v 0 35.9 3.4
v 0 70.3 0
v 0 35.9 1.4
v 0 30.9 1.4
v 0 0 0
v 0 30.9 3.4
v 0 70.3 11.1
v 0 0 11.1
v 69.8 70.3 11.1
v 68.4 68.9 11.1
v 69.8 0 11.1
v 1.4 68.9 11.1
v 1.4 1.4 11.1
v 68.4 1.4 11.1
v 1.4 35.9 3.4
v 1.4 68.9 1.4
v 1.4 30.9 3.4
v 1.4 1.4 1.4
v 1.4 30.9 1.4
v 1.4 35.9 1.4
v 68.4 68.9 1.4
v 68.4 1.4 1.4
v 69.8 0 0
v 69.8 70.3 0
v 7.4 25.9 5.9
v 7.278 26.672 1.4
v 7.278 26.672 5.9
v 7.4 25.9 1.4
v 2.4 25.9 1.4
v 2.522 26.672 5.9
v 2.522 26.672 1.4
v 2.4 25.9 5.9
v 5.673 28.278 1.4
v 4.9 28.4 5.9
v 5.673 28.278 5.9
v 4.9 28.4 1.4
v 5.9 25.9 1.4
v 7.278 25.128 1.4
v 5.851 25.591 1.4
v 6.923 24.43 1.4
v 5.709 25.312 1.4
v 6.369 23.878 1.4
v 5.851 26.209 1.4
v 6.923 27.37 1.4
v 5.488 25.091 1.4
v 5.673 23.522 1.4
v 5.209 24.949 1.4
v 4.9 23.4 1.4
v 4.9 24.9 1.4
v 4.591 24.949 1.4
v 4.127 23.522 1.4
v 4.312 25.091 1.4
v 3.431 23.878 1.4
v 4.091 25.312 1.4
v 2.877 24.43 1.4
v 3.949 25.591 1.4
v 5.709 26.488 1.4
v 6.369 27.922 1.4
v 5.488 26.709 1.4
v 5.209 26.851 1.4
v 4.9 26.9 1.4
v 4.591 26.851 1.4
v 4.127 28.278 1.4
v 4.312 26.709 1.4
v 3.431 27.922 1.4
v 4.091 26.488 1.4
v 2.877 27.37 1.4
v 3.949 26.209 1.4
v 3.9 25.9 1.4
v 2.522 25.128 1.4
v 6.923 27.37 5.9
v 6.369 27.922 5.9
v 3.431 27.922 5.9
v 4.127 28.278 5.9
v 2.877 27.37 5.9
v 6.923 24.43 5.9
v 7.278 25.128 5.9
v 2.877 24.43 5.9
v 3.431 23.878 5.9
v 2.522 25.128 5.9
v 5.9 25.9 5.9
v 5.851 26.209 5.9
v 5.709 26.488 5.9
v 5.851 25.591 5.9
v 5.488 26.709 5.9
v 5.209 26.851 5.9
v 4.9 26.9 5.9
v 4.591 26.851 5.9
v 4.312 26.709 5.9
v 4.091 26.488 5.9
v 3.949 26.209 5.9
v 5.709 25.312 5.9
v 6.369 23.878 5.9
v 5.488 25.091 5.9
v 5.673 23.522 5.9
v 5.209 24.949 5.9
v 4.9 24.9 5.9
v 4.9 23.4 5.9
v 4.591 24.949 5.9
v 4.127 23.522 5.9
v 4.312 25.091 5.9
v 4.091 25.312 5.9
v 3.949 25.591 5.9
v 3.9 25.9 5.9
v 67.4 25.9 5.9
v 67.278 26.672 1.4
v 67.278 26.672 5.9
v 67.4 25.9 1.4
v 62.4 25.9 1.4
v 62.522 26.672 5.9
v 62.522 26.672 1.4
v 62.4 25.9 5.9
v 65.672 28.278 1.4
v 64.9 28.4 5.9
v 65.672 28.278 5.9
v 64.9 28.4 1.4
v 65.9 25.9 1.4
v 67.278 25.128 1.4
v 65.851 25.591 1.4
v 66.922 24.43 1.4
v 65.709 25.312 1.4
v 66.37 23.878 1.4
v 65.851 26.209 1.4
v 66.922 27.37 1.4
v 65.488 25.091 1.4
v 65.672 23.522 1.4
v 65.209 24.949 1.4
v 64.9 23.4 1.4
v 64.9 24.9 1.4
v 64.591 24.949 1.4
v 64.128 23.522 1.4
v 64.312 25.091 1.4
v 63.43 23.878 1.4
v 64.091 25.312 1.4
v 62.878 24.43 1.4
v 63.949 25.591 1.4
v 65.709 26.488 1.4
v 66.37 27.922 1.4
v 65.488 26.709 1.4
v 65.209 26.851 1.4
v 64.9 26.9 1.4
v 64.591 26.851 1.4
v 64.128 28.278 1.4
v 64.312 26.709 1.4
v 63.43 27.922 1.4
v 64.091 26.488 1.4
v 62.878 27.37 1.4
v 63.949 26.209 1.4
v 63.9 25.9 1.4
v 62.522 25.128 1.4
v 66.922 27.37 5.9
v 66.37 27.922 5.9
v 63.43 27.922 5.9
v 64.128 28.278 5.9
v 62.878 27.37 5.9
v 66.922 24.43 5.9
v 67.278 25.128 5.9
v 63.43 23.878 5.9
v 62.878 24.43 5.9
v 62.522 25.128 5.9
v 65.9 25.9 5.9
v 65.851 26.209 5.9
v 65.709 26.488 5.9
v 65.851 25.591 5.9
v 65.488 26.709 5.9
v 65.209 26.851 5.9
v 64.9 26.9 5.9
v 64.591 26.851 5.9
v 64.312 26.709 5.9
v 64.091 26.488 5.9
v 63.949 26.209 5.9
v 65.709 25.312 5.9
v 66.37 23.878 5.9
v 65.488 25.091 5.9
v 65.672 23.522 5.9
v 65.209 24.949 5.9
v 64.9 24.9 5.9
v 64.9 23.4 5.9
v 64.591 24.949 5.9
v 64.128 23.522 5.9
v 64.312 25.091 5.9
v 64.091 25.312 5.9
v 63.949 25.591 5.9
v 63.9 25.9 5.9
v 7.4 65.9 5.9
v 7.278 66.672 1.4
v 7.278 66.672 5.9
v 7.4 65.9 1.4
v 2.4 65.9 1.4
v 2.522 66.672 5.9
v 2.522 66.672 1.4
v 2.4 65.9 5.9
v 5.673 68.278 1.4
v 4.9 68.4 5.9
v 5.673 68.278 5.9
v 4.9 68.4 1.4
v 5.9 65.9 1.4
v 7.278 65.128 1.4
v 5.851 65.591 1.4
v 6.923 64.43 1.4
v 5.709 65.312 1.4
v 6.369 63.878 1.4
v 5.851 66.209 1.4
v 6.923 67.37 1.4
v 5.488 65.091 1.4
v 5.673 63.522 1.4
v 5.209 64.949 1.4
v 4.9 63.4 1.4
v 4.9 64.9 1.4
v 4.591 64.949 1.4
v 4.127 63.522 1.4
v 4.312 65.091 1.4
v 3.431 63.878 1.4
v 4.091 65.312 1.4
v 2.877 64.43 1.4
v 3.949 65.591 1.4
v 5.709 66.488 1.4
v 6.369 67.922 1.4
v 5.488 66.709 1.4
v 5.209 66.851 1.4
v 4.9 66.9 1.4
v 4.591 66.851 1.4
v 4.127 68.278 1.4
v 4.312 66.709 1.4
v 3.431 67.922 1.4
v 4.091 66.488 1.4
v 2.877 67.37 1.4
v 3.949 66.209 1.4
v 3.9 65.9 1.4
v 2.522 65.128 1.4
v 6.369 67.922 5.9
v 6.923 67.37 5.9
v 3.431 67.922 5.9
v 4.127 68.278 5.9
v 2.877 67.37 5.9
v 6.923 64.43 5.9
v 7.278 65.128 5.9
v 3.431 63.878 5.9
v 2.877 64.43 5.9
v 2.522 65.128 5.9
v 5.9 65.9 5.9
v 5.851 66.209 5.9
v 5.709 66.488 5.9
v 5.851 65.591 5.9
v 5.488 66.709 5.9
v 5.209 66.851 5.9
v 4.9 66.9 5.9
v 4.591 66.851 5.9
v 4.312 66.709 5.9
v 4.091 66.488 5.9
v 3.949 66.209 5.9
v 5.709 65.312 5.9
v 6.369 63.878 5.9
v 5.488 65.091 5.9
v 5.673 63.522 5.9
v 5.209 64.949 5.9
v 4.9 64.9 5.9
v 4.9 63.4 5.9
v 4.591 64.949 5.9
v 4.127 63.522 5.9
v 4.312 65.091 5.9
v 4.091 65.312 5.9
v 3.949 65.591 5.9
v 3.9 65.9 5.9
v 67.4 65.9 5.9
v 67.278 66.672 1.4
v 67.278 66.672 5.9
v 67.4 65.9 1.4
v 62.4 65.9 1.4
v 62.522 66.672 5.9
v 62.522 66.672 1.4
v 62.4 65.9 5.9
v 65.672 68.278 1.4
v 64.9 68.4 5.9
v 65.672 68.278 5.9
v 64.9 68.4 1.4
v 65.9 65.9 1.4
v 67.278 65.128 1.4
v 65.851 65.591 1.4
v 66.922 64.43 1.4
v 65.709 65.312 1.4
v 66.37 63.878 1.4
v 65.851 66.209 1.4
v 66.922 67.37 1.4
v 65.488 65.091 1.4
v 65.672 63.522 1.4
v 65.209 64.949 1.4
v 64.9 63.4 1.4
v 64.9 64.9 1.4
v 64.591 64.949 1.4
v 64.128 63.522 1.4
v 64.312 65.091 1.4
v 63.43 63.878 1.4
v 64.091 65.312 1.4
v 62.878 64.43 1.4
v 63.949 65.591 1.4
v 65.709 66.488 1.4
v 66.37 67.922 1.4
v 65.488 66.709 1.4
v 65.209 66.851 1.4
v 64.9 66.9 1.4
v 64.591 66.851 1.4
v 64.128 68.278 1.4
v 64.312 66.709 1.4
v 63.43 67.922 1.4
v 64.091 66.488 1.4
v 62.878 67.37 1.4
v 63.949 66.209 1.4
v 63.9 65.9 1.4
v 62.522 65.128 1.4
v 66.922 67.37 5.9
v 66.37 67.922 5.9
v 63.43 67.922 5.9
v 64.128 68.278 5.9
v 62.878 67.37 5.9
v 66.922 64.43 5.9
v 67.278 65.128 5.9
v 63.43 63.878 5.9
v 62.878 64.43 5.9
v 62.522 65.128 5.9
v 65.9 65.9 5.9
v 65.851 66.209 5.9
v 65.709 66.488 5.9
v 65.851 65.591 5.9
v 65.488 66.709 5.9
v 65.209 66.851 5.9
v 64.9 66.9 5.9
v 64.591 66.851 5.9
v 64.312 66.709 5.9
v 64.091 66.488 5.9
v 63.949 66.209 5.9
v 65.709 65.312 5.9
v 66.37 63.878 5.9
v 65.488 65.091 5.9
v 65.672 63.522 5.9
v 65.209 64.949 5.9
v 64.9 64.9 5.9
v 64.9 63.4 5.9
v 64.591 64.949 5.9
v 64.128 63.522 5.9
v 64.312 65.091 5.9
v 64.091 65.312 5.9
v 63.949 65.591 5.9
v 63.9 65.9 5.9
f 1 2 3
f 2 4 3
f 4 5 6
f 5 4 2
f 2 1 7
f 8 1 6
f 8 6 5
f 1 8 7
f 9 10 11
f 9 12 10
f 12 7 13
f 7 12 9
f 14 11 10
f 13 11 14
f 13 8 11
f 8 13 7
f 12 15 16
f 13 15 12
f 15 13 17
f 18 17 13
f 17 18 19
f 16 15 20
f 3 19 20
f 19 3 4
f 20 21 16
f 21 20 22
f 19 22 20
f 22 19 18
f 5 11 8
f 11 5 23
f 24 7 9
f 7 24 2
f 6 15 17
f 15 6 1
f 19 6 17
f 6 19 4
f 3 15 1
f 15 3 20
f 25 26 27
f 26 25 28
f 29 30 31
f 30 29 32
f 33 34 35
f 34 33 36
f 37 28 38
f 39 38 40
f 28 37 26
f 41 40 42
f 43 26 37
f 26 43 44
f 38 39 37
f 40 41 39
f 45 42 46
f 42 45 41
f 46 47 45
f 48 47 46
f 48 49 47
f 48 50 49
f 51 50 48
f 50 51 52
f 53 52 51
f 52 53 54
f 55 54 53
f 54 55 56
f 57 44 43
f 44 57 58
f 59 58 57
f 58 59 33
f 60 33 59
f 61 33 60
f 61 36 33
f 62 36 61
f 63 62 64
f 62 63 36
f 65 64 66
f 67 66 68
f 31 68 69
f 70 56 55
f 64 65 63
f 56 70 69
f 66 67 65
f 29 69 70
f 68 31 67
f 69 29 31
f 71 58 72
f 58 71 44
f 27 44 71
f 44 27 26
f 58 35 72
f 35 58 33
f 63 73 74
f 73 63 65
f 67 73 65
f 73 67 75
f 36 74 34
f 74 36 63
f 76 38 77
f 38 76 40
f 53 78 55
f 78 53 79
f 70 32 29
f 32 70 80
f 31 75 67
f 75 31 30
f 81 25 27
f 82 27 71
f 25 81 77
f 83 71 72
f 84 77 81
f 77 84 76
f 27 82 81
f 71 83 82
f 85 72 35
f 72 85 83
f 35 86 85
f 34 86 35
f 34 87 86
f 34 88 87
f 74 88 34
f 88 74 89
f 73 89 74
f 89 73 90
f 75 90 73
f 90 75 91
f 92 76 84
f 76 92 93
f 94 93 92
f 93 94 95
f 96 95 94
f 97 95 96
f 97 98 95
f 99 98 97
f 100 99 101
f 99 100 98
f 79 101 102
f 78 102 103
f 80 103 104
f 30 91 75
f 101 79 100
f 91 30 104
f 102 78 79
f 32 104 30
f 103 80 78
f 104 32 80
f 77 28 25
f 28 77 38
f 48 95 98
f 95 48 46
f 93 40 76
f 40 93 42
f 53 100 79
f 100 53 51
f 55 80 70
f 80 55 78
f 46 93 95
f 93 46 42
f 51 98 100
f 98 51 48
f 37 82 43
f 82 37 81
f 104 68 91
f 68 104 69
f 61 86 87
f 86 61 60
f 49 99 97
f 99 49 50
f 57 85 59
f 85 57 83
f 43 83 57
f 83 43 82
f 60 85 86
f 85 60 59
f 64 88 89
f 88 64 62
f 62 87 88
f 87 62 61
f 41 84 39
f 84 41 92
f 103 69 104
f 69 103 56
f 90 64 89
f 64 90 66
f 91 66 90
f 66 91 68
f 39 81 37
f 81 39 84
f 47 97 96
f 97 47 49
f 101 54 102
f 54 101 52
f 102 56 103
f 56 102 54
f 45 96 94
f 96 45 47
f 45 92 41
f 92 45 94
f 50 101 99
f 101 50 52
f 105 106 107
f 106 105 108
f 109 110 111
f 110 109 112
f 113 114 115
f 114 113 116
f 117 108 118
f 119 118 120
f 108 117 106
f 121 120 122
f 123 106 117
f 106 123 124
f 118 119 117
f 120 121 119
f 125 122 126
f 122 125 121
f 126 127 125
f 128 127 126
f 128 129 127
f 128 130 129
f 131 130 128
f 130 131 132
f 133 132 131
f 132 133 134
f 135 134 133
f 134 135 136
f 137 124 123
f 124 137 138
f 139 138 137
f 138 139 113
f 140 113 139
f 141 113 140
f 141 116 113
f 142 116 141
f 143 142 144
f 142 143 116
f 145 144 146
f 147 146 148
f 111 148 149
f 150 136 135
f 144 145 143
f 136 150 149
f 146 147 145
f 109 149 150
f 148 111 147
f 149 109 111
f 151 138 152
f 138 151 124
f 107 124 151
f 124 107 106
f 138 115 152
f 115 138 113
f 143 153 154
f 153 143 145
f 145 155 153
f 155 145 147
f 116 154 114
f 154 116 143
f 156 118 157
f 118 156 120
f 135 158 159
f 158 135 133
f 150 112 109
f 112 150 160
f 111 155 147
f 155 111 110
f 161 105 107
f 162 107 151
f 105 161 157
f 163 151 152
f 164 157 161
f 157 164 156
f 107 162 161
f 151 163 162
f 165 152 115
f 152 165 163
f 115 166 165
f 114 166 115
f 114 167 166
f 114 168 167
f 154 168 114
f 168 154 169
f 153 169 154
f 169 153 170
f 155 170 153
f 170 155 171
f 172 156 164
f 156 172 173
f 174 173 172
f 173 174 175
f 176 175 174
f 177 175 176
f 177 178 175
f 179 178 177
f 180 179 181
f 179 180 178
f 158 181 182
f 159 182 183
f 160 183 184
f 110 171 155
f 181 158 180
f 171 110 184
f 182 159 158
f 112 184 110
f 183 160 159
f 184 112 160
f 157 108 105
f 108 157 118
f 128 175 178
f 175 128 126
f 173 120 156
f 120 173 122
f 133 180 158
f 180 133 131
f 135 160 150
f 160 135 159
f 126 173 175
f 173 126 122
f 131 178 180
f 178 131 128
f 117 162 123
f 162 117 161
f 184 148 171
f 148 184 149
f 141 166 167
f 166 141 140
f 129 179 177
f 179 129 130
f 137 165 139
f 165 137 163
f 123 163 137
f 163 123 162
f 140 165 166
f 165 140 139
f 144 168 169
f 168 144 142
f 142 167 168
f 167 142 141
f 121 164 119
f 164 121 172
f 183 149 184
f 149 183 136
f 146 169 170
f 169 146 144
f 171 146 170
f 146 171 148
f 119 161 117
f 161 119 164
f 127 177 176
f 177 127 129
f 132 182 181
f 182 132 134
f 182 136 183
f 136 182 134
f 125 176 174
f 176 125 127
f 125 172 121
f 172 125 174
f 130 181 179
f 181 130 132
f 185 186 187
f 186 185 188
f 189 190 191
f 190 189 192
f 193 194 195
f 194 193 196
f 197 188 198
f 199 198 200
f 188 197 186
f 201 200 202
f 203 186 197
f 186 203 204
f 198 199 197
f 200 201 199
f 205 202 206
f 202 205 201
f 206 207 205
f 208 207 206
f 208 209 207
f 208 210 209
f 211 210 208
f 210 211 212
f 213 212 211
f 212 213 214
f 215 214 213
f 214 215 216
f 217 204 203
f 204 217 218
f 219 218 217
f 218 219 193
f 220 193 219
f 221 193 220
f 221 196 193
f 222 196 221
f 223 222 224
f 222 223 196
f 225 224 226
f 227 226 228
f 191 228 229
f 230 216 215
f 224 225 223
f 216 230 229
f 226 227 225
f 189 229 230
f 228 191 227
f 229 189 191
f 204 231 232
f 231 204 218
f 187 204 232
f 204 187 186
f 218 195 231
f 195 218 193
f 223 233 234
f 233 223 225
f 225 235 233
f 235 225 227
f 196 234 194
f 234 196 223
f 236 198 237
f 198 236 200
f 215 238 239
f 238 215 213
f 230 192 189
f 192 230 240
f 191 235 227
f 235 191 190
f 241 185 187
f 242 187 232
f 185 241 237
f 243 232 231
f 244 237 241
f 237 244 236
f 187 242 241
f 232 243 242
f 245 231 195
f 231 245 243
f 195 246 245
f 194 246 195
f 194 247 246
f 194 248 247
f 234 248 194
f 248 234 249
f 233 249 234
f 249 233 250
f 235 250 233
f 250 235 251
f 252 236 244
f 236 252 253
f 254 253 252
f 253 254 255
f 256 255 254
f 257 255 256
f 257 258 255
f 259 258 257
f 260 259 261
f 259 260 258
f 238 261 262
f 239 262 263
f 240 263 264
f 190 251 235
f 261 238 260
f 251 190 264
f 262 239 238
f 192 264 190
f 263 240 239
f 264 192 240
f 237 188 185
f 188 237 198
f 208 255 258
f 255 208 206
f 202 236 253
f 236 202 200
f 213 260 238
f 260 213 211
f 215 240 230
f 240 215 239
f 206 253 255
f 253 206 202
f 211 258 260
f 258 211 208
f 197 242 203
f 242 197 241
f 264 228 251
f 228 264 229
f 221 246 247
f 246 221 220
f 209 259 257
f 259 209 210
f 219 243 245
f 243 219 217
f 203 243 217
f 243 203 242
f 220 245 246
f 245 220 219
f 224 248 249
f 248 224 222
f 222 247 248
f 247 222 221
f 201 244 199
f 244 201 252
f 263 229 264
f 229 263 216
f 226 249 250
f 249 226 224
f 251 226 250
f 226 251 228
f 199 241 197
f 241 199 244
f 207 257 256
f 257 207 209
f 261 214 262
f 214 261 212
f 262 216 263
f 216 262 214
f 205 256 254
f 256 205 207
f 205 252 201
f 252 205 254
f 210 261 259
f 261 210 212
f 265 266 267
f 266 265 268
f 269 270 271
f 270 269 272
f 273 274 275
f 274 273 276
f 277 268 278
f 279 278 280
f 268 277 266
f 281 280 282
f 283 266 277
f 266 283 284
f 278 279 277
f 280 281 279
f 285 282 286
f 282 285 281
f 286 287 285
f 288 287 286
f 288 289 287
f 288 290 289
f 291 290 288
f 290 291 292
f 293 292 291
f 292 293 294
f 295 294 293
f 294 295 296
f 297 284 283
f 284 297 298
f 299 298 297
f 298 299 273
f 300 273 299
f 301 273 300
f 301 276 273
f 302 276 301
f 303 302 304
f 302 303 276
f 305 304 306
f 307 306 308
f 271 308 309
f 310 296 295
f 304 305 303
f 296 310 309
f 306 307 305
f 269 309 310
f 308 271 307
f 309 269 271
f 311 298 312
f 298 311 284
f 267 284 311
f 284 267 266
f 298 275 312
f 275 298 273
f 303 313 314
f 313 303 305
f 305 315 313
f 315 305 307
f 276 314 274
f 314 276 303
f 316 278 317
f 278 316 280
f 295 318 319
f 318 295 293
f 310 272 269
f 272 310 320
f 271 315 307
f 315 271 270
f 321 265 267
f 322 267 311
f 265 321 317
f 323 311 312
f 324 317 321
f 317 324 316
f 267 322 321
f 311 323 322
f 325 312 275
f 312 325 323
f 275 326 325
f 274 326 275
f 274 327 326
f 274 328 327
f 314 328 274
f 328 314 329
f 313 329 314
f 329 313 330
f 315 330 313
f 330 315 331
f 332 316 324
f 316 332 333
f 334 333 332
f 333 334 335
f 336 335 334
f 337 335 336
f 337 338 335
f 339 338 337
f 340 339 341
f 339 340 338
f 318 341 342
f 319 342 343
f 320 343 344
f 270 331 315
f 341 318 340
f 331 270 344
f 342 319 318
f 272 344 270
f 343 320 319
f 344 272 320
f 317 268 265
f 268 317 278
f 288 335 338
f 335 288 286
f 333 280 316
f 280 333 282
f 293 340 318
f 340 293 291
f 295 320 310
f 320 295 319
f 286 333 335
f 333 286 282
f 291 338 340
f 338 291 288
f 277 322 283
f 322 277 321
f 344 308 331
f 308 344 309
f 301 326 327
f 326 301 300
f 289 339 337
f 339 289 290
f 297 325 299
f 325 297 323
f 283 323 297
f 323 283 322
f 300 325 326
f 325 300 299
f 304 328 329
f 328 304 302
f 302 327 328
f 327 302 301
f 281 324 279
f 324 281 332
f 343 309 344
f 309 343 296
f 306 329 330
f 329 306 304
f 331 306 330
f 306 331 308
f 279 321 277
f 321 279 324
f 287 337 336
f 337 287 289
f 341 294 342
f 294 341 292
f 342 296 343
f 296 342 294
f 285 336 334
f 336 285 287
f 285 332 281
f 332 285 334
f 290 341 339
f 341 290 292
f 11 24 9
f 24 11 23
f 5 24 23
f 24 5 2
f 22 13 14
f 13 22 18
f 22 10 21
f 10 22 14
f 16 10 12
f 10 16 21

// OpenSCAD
width = 67;
height = 67.5;
hole_nub = 5;
hole = 2;
hole_width = 60;
hole_height = 40;
hole_offset_top = 3;
wall_size = 1.4;

depth_top = 3.6;
depth_pcb = 1.6;
depth_bottom = 4.1;
depth_gap = 0.4;
depth = depth_top + depth_pcb + depth_bottom + depth_gap;
screw_nub_depth = depth_bottom + depth_gap;

$fn = 20;

module nub() {
    difference() {
        cylinder(d = hole_nub, h = screw_nub_depth);
        translate([0, 0, -1])
            cylinder(d = hole, h = screw_nub_depth + 2);
    }
}

module nubs() {
    nub();
    
    translate([hole_width, 0, 0])
        nub();
    
    translate([0, hole_height, 0])
        nub();
    
    translate([hole_width, hole_height, 0])
        nub();
}

// base
cube([width + (2 * wall_size), height + (2 * wall_size), wall_size]);

// left wall
difference() {
    translate([0, 0, wall_size])
        cube([wall_size, height + (2 * wall_size), depth]);
    
    translate([-1, wall_size + height - hole_offset_top - hole_height + hole_nub, wall_size])
        cube([wall_size + 2, hole_nub, hole]);
}

// bottom wall
translate([0, 0, wall_size])
    cube([width + (2 * wall_size), wall_size, depth]);

// right wall
translate([width + wall_size, 0, wall_size])
    cube([wall_size, height + (2 * wall_size), depth]);

// top wall
translate([0, height + wall_size, wall_size])
    cube([width + (2 * wall_size), wall_size, depth]);

translate([wall_size + (width - hole_width) / 2, wall_size + height - hole_height - hole_offset_top, wall_size])
    nubs();
